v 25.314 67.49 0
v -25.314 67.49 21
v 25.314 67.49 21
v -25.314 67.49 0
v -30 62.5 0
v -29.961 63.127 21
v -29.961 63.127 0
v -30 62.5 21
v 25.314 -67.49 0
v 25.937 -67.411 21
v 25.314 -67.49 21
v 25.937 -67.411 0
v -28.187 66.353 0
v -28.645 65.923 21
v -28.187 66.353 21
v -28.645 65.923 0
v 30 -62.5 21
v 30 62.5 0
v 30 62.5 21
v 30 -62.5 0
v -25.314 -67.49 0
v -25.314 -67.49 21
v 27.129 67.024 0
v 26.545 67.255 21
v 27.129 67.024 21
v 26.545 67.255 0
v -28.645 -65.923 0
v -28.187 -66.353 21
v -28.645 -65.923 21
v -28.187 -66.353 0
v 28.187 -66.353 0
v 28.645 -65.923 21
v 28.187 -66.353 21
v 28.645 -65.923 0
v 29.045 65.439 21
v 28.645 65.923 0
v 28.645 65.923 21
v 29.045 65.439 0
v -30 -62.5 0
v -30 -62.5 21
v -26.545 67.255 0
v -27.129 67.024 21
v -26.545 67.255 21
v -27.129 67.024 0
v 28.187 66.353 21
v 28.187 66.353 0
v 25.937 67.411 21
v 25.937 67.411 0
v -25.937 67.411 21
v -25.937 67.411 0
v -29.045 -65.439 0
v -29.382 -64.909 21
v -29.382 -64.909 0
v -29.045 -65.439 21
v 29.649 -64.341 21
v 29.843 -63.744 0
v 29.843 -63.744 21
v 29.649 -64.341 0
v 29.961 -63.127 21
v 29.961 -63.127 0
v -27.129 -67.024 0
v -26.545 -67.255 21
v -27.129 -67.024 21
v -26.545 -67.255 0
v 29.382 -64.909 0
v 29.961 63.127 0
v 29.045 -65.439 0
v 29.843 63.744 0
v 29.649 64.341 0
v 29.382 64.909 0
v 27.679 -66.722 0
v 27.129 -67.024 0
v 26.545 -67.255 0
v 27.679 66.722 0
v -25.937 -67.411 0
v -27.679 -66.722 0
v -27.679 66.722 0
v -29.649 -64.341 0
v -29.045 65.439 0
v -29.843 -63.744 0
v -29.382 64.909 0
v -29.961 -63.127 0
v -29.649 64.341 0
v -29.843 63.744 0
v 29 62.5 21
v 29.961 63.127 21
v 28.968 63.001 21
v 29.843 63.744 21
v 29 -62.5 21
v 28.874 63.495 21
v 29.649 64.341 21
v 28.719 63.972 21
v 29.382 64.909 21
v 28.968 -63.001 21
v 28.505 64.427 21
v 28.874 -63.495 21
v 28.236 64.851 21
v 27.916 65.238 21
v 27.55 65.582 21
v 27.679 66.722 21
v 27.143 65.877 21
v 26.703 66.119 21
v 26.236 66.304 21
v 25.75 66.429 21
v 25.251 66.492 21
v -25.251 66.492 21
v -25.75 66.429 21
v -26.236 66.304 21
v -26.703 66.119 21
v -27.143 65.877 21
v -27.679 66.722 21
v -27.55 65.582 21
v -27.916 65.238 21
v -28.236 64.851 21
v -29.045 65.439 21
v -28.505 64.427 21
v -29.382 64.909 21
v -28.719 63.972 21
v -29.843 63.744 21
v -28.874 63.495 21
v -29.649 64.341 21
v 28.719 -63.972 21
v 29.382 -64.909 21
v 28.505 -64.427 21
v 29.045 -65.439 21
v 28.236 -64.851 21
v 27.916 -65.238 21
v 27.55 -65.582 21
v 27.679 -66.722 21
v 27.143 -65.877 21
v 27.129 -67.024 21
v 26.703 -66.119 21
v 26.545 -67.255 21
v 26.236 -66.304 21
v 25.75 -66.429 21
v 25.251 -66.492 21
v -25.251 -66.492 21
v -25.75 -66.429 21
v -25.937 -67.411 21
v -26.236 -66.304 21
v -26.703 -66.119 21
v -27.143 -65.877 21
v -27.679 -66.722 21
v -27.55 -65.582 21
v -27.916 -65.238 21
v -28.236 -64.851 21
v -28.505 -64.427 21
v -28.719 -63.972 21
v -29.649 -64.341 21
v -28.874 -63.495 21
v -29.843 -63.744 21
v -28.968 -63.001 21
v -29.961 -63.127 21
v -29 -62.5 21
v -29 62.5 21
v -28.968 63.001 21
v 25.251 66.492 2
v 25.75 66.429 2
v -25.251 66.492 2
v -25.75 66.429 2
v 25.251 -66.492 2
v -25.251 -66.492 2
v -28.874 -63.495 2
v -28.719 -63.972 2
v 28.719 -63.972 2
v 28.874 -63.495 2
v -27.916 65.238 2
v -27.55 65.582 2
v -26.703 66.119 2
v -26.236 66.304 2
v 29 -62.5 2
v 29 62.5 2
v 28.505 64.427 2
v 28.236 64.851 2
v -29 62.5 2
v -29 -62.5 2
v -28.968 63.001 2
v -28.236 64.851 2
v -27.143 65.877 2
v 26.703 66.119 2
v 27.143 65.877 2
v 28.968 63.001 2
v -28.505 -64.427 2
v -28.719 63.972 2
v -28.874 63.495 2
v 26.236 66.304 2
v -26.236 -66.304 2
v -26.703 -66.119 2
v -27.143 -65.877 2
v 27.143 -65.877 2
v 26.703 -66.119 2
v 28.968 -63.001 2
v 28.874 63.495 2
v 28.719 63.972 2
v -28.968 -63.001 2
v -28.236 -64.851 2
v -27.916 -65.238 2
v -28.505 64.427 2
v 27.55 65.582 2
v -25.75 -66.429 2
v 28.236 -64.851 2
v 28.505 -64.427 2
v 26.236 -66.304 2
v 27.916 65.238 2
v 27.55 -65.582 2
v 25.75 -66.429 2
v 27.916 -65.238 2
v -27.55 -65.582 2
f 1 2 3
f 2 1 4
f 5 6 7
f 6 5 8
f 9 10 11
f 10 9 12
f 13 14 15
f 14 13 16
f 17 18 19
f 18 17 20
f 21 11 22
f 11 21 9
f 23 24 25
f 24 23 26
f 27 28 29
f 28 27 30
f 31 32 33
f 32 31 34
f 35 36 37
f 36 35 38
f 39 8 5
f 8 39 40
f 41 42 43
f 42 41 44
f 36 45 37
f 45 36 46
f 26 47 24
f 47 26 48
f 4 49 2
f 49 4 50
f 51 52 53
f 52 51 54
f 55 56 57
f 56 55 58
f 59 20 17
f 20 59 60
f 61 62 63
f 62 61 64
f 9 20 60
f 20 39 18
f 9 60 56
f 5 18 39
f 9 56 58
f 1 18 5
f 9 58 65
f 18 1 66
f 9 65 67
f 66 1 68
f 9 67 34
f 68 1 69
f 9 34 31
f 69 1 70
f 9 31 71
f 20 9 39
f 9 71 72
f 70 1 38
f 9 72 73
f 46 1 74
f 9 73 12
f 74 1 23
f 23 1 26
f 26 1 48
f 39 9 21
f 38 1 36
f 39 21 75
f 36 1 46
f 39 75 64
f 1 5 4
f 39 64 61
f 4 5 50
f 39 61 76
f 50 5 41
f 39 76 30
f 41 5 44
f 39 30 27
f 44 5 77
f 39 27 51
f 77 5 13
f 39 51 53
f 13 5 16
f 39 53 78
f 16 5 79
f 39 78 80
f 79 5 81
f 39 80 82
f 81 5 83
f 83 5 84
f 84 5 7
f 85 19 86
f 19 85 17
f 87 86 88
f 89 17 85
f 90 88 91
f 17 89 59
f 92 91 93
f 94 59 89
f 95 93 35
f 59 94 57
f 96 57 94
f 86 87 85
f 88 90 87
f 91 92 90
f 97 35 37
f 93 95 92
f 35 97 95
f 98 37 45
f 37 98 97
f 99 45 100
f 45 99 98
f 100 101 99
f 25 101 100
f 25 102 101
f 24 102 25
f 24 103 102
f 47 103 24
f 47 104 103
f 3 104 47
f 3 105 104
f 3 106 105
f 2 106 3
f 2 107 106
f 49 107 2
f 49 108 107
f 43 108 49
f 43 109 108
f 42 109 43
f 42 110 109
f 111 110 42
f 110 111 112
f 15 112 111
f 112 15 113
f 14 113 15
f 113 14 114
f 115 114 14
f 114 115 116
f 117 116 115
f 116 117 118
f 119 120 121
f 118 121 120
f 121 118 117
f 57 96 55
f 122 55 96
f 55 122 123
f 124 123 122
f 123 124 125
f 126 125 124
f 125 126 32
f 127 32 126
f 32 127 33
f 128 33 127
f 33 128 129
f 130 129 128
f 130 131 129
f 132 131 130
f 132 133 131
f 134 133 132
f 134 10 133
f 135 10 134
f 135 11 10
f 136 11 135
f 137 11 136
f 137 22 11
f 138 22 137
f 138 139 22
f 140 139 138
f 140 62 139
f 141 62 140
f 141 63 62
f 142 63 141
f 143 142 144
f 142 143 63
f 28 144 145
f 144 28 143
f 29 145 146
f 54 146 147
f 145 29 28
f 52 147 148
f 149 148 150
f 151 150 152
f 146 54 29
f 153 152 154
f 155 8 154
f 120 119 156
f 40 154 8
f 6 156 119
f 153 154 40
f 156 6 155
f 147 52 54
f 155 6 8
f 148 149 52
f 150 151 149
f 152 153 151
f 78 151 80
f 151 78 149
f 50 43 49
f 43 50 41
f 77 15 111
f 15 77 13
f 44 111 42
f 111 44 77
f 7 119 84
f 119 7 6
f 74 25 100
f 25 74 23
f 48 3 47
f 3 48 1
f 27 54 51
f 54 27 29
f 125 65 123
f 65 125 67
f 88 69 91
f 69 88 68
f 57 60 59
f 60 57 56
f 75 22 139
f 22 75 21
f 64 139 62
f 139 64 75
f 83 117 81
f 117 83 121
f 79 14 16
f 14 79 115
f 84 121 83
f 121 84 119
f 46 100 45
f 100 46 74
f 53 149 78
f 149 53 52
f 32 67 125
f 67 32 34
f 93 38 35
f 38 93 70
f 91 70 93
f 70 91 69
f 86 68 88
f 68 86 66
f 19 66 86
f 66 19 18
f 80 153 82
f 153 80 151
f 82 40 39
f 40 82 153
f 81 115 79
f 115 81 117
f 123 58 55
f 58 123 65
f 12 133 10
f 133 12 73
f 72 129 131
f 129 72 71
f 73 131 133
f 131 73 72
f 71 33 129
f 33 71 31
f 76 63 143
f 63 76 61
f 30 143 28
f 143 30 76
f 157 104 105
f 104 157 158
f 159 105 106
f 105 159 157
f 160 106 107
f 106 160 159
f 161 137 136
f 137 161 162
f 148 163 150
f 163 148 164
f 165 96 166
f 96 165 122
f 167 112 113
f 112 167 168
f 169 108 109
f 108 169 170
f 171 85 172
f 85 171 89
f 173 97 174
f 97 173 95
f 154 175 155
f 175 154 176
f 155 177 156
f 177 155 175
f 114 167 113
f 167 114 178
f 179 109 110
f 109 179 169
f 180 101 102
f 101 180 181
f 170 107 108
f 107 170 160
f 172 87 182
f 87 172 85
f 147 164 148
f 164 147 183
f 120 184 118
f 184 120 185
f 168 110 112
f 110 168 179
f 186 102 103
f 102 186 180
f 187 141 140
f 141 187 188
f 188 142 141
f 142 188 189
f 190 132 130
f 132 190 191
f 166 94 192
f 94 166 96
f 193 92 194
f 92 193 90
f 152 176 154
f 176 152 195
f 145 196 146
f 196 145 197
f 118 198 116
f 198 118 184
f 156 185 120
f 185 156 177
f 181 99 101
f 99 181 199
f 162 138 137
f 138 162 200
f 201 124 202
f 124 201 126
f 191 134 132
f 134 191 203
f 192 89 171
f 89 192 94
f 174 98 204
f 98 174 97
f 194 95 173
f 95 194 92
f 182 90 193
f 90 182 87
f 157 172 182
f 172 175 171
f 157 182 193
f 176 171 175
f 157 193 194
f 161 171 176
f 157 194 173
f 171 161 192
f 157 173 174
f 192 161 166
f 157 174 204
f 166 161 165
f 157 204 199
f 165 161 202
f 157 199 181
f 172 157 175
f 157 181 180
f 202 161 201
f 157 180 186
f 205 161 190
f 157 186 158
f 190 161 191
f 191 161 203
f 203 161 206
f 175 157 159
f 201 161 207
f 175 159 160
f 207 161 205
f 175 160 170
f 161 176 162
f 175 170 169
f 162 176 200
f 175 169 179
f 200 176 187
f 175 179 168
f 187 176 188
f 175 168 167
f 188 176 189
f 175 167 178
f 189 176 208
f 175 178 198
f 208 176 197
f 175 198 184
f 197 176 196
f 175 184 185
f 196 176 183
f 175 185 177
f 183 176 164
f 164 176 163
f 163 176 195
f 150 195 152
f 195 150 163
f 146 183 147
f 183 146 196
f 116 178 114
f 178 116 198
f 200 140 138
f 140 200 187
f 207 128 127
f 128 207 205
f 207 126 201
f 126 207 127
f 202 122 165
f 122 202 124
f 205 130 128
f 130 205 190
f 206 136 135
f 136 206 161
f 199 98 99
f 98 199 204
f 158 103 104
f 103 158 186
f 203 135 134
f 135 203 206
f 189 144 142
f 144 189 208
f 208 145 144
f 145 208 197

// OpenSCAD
$fn = 50;


difference() {
	union() {
		hull() {
			translate(v = [-25.0000000000, 62.5000000000, 0]) {
				cylinder(h = 21, r = 5);
			}
			translate(v = [25.0000000000, 62.5000000000, 0]) {
				cylinder(h = 21, r = 5);
			}
			translate(v = [-25.0000000000, -62.5000000000, 0]) {
				cylinder(h = 21, r = 5);
			}
			translate(v = [25.0000000000, -62.5000000000, 0]) {
				cylinder(h = 21, r = 5);
			}
		}
	}
	union() {
		translate(v = [0, 0, 2]) {
			hull() {
				translate(v = [-25.0000000000, 62.5000000000, 0]) {
					cylinder(h = 19, r = 4);
				}
				translate(v = [25.0000000000, 62.5000000000, 0]) {
					cylinder(h = 19, r = 4);
				}
				translate(v = [-25.0000000000, -62.5000000000, 0]) {
					cylinder(h = 19, r = 4);
				}
				translate(v = [25.0000000000, -62.5000000000, 0]) {
					cylinder(h = 19, r = 4);
				}
			}
		}
	}
}
